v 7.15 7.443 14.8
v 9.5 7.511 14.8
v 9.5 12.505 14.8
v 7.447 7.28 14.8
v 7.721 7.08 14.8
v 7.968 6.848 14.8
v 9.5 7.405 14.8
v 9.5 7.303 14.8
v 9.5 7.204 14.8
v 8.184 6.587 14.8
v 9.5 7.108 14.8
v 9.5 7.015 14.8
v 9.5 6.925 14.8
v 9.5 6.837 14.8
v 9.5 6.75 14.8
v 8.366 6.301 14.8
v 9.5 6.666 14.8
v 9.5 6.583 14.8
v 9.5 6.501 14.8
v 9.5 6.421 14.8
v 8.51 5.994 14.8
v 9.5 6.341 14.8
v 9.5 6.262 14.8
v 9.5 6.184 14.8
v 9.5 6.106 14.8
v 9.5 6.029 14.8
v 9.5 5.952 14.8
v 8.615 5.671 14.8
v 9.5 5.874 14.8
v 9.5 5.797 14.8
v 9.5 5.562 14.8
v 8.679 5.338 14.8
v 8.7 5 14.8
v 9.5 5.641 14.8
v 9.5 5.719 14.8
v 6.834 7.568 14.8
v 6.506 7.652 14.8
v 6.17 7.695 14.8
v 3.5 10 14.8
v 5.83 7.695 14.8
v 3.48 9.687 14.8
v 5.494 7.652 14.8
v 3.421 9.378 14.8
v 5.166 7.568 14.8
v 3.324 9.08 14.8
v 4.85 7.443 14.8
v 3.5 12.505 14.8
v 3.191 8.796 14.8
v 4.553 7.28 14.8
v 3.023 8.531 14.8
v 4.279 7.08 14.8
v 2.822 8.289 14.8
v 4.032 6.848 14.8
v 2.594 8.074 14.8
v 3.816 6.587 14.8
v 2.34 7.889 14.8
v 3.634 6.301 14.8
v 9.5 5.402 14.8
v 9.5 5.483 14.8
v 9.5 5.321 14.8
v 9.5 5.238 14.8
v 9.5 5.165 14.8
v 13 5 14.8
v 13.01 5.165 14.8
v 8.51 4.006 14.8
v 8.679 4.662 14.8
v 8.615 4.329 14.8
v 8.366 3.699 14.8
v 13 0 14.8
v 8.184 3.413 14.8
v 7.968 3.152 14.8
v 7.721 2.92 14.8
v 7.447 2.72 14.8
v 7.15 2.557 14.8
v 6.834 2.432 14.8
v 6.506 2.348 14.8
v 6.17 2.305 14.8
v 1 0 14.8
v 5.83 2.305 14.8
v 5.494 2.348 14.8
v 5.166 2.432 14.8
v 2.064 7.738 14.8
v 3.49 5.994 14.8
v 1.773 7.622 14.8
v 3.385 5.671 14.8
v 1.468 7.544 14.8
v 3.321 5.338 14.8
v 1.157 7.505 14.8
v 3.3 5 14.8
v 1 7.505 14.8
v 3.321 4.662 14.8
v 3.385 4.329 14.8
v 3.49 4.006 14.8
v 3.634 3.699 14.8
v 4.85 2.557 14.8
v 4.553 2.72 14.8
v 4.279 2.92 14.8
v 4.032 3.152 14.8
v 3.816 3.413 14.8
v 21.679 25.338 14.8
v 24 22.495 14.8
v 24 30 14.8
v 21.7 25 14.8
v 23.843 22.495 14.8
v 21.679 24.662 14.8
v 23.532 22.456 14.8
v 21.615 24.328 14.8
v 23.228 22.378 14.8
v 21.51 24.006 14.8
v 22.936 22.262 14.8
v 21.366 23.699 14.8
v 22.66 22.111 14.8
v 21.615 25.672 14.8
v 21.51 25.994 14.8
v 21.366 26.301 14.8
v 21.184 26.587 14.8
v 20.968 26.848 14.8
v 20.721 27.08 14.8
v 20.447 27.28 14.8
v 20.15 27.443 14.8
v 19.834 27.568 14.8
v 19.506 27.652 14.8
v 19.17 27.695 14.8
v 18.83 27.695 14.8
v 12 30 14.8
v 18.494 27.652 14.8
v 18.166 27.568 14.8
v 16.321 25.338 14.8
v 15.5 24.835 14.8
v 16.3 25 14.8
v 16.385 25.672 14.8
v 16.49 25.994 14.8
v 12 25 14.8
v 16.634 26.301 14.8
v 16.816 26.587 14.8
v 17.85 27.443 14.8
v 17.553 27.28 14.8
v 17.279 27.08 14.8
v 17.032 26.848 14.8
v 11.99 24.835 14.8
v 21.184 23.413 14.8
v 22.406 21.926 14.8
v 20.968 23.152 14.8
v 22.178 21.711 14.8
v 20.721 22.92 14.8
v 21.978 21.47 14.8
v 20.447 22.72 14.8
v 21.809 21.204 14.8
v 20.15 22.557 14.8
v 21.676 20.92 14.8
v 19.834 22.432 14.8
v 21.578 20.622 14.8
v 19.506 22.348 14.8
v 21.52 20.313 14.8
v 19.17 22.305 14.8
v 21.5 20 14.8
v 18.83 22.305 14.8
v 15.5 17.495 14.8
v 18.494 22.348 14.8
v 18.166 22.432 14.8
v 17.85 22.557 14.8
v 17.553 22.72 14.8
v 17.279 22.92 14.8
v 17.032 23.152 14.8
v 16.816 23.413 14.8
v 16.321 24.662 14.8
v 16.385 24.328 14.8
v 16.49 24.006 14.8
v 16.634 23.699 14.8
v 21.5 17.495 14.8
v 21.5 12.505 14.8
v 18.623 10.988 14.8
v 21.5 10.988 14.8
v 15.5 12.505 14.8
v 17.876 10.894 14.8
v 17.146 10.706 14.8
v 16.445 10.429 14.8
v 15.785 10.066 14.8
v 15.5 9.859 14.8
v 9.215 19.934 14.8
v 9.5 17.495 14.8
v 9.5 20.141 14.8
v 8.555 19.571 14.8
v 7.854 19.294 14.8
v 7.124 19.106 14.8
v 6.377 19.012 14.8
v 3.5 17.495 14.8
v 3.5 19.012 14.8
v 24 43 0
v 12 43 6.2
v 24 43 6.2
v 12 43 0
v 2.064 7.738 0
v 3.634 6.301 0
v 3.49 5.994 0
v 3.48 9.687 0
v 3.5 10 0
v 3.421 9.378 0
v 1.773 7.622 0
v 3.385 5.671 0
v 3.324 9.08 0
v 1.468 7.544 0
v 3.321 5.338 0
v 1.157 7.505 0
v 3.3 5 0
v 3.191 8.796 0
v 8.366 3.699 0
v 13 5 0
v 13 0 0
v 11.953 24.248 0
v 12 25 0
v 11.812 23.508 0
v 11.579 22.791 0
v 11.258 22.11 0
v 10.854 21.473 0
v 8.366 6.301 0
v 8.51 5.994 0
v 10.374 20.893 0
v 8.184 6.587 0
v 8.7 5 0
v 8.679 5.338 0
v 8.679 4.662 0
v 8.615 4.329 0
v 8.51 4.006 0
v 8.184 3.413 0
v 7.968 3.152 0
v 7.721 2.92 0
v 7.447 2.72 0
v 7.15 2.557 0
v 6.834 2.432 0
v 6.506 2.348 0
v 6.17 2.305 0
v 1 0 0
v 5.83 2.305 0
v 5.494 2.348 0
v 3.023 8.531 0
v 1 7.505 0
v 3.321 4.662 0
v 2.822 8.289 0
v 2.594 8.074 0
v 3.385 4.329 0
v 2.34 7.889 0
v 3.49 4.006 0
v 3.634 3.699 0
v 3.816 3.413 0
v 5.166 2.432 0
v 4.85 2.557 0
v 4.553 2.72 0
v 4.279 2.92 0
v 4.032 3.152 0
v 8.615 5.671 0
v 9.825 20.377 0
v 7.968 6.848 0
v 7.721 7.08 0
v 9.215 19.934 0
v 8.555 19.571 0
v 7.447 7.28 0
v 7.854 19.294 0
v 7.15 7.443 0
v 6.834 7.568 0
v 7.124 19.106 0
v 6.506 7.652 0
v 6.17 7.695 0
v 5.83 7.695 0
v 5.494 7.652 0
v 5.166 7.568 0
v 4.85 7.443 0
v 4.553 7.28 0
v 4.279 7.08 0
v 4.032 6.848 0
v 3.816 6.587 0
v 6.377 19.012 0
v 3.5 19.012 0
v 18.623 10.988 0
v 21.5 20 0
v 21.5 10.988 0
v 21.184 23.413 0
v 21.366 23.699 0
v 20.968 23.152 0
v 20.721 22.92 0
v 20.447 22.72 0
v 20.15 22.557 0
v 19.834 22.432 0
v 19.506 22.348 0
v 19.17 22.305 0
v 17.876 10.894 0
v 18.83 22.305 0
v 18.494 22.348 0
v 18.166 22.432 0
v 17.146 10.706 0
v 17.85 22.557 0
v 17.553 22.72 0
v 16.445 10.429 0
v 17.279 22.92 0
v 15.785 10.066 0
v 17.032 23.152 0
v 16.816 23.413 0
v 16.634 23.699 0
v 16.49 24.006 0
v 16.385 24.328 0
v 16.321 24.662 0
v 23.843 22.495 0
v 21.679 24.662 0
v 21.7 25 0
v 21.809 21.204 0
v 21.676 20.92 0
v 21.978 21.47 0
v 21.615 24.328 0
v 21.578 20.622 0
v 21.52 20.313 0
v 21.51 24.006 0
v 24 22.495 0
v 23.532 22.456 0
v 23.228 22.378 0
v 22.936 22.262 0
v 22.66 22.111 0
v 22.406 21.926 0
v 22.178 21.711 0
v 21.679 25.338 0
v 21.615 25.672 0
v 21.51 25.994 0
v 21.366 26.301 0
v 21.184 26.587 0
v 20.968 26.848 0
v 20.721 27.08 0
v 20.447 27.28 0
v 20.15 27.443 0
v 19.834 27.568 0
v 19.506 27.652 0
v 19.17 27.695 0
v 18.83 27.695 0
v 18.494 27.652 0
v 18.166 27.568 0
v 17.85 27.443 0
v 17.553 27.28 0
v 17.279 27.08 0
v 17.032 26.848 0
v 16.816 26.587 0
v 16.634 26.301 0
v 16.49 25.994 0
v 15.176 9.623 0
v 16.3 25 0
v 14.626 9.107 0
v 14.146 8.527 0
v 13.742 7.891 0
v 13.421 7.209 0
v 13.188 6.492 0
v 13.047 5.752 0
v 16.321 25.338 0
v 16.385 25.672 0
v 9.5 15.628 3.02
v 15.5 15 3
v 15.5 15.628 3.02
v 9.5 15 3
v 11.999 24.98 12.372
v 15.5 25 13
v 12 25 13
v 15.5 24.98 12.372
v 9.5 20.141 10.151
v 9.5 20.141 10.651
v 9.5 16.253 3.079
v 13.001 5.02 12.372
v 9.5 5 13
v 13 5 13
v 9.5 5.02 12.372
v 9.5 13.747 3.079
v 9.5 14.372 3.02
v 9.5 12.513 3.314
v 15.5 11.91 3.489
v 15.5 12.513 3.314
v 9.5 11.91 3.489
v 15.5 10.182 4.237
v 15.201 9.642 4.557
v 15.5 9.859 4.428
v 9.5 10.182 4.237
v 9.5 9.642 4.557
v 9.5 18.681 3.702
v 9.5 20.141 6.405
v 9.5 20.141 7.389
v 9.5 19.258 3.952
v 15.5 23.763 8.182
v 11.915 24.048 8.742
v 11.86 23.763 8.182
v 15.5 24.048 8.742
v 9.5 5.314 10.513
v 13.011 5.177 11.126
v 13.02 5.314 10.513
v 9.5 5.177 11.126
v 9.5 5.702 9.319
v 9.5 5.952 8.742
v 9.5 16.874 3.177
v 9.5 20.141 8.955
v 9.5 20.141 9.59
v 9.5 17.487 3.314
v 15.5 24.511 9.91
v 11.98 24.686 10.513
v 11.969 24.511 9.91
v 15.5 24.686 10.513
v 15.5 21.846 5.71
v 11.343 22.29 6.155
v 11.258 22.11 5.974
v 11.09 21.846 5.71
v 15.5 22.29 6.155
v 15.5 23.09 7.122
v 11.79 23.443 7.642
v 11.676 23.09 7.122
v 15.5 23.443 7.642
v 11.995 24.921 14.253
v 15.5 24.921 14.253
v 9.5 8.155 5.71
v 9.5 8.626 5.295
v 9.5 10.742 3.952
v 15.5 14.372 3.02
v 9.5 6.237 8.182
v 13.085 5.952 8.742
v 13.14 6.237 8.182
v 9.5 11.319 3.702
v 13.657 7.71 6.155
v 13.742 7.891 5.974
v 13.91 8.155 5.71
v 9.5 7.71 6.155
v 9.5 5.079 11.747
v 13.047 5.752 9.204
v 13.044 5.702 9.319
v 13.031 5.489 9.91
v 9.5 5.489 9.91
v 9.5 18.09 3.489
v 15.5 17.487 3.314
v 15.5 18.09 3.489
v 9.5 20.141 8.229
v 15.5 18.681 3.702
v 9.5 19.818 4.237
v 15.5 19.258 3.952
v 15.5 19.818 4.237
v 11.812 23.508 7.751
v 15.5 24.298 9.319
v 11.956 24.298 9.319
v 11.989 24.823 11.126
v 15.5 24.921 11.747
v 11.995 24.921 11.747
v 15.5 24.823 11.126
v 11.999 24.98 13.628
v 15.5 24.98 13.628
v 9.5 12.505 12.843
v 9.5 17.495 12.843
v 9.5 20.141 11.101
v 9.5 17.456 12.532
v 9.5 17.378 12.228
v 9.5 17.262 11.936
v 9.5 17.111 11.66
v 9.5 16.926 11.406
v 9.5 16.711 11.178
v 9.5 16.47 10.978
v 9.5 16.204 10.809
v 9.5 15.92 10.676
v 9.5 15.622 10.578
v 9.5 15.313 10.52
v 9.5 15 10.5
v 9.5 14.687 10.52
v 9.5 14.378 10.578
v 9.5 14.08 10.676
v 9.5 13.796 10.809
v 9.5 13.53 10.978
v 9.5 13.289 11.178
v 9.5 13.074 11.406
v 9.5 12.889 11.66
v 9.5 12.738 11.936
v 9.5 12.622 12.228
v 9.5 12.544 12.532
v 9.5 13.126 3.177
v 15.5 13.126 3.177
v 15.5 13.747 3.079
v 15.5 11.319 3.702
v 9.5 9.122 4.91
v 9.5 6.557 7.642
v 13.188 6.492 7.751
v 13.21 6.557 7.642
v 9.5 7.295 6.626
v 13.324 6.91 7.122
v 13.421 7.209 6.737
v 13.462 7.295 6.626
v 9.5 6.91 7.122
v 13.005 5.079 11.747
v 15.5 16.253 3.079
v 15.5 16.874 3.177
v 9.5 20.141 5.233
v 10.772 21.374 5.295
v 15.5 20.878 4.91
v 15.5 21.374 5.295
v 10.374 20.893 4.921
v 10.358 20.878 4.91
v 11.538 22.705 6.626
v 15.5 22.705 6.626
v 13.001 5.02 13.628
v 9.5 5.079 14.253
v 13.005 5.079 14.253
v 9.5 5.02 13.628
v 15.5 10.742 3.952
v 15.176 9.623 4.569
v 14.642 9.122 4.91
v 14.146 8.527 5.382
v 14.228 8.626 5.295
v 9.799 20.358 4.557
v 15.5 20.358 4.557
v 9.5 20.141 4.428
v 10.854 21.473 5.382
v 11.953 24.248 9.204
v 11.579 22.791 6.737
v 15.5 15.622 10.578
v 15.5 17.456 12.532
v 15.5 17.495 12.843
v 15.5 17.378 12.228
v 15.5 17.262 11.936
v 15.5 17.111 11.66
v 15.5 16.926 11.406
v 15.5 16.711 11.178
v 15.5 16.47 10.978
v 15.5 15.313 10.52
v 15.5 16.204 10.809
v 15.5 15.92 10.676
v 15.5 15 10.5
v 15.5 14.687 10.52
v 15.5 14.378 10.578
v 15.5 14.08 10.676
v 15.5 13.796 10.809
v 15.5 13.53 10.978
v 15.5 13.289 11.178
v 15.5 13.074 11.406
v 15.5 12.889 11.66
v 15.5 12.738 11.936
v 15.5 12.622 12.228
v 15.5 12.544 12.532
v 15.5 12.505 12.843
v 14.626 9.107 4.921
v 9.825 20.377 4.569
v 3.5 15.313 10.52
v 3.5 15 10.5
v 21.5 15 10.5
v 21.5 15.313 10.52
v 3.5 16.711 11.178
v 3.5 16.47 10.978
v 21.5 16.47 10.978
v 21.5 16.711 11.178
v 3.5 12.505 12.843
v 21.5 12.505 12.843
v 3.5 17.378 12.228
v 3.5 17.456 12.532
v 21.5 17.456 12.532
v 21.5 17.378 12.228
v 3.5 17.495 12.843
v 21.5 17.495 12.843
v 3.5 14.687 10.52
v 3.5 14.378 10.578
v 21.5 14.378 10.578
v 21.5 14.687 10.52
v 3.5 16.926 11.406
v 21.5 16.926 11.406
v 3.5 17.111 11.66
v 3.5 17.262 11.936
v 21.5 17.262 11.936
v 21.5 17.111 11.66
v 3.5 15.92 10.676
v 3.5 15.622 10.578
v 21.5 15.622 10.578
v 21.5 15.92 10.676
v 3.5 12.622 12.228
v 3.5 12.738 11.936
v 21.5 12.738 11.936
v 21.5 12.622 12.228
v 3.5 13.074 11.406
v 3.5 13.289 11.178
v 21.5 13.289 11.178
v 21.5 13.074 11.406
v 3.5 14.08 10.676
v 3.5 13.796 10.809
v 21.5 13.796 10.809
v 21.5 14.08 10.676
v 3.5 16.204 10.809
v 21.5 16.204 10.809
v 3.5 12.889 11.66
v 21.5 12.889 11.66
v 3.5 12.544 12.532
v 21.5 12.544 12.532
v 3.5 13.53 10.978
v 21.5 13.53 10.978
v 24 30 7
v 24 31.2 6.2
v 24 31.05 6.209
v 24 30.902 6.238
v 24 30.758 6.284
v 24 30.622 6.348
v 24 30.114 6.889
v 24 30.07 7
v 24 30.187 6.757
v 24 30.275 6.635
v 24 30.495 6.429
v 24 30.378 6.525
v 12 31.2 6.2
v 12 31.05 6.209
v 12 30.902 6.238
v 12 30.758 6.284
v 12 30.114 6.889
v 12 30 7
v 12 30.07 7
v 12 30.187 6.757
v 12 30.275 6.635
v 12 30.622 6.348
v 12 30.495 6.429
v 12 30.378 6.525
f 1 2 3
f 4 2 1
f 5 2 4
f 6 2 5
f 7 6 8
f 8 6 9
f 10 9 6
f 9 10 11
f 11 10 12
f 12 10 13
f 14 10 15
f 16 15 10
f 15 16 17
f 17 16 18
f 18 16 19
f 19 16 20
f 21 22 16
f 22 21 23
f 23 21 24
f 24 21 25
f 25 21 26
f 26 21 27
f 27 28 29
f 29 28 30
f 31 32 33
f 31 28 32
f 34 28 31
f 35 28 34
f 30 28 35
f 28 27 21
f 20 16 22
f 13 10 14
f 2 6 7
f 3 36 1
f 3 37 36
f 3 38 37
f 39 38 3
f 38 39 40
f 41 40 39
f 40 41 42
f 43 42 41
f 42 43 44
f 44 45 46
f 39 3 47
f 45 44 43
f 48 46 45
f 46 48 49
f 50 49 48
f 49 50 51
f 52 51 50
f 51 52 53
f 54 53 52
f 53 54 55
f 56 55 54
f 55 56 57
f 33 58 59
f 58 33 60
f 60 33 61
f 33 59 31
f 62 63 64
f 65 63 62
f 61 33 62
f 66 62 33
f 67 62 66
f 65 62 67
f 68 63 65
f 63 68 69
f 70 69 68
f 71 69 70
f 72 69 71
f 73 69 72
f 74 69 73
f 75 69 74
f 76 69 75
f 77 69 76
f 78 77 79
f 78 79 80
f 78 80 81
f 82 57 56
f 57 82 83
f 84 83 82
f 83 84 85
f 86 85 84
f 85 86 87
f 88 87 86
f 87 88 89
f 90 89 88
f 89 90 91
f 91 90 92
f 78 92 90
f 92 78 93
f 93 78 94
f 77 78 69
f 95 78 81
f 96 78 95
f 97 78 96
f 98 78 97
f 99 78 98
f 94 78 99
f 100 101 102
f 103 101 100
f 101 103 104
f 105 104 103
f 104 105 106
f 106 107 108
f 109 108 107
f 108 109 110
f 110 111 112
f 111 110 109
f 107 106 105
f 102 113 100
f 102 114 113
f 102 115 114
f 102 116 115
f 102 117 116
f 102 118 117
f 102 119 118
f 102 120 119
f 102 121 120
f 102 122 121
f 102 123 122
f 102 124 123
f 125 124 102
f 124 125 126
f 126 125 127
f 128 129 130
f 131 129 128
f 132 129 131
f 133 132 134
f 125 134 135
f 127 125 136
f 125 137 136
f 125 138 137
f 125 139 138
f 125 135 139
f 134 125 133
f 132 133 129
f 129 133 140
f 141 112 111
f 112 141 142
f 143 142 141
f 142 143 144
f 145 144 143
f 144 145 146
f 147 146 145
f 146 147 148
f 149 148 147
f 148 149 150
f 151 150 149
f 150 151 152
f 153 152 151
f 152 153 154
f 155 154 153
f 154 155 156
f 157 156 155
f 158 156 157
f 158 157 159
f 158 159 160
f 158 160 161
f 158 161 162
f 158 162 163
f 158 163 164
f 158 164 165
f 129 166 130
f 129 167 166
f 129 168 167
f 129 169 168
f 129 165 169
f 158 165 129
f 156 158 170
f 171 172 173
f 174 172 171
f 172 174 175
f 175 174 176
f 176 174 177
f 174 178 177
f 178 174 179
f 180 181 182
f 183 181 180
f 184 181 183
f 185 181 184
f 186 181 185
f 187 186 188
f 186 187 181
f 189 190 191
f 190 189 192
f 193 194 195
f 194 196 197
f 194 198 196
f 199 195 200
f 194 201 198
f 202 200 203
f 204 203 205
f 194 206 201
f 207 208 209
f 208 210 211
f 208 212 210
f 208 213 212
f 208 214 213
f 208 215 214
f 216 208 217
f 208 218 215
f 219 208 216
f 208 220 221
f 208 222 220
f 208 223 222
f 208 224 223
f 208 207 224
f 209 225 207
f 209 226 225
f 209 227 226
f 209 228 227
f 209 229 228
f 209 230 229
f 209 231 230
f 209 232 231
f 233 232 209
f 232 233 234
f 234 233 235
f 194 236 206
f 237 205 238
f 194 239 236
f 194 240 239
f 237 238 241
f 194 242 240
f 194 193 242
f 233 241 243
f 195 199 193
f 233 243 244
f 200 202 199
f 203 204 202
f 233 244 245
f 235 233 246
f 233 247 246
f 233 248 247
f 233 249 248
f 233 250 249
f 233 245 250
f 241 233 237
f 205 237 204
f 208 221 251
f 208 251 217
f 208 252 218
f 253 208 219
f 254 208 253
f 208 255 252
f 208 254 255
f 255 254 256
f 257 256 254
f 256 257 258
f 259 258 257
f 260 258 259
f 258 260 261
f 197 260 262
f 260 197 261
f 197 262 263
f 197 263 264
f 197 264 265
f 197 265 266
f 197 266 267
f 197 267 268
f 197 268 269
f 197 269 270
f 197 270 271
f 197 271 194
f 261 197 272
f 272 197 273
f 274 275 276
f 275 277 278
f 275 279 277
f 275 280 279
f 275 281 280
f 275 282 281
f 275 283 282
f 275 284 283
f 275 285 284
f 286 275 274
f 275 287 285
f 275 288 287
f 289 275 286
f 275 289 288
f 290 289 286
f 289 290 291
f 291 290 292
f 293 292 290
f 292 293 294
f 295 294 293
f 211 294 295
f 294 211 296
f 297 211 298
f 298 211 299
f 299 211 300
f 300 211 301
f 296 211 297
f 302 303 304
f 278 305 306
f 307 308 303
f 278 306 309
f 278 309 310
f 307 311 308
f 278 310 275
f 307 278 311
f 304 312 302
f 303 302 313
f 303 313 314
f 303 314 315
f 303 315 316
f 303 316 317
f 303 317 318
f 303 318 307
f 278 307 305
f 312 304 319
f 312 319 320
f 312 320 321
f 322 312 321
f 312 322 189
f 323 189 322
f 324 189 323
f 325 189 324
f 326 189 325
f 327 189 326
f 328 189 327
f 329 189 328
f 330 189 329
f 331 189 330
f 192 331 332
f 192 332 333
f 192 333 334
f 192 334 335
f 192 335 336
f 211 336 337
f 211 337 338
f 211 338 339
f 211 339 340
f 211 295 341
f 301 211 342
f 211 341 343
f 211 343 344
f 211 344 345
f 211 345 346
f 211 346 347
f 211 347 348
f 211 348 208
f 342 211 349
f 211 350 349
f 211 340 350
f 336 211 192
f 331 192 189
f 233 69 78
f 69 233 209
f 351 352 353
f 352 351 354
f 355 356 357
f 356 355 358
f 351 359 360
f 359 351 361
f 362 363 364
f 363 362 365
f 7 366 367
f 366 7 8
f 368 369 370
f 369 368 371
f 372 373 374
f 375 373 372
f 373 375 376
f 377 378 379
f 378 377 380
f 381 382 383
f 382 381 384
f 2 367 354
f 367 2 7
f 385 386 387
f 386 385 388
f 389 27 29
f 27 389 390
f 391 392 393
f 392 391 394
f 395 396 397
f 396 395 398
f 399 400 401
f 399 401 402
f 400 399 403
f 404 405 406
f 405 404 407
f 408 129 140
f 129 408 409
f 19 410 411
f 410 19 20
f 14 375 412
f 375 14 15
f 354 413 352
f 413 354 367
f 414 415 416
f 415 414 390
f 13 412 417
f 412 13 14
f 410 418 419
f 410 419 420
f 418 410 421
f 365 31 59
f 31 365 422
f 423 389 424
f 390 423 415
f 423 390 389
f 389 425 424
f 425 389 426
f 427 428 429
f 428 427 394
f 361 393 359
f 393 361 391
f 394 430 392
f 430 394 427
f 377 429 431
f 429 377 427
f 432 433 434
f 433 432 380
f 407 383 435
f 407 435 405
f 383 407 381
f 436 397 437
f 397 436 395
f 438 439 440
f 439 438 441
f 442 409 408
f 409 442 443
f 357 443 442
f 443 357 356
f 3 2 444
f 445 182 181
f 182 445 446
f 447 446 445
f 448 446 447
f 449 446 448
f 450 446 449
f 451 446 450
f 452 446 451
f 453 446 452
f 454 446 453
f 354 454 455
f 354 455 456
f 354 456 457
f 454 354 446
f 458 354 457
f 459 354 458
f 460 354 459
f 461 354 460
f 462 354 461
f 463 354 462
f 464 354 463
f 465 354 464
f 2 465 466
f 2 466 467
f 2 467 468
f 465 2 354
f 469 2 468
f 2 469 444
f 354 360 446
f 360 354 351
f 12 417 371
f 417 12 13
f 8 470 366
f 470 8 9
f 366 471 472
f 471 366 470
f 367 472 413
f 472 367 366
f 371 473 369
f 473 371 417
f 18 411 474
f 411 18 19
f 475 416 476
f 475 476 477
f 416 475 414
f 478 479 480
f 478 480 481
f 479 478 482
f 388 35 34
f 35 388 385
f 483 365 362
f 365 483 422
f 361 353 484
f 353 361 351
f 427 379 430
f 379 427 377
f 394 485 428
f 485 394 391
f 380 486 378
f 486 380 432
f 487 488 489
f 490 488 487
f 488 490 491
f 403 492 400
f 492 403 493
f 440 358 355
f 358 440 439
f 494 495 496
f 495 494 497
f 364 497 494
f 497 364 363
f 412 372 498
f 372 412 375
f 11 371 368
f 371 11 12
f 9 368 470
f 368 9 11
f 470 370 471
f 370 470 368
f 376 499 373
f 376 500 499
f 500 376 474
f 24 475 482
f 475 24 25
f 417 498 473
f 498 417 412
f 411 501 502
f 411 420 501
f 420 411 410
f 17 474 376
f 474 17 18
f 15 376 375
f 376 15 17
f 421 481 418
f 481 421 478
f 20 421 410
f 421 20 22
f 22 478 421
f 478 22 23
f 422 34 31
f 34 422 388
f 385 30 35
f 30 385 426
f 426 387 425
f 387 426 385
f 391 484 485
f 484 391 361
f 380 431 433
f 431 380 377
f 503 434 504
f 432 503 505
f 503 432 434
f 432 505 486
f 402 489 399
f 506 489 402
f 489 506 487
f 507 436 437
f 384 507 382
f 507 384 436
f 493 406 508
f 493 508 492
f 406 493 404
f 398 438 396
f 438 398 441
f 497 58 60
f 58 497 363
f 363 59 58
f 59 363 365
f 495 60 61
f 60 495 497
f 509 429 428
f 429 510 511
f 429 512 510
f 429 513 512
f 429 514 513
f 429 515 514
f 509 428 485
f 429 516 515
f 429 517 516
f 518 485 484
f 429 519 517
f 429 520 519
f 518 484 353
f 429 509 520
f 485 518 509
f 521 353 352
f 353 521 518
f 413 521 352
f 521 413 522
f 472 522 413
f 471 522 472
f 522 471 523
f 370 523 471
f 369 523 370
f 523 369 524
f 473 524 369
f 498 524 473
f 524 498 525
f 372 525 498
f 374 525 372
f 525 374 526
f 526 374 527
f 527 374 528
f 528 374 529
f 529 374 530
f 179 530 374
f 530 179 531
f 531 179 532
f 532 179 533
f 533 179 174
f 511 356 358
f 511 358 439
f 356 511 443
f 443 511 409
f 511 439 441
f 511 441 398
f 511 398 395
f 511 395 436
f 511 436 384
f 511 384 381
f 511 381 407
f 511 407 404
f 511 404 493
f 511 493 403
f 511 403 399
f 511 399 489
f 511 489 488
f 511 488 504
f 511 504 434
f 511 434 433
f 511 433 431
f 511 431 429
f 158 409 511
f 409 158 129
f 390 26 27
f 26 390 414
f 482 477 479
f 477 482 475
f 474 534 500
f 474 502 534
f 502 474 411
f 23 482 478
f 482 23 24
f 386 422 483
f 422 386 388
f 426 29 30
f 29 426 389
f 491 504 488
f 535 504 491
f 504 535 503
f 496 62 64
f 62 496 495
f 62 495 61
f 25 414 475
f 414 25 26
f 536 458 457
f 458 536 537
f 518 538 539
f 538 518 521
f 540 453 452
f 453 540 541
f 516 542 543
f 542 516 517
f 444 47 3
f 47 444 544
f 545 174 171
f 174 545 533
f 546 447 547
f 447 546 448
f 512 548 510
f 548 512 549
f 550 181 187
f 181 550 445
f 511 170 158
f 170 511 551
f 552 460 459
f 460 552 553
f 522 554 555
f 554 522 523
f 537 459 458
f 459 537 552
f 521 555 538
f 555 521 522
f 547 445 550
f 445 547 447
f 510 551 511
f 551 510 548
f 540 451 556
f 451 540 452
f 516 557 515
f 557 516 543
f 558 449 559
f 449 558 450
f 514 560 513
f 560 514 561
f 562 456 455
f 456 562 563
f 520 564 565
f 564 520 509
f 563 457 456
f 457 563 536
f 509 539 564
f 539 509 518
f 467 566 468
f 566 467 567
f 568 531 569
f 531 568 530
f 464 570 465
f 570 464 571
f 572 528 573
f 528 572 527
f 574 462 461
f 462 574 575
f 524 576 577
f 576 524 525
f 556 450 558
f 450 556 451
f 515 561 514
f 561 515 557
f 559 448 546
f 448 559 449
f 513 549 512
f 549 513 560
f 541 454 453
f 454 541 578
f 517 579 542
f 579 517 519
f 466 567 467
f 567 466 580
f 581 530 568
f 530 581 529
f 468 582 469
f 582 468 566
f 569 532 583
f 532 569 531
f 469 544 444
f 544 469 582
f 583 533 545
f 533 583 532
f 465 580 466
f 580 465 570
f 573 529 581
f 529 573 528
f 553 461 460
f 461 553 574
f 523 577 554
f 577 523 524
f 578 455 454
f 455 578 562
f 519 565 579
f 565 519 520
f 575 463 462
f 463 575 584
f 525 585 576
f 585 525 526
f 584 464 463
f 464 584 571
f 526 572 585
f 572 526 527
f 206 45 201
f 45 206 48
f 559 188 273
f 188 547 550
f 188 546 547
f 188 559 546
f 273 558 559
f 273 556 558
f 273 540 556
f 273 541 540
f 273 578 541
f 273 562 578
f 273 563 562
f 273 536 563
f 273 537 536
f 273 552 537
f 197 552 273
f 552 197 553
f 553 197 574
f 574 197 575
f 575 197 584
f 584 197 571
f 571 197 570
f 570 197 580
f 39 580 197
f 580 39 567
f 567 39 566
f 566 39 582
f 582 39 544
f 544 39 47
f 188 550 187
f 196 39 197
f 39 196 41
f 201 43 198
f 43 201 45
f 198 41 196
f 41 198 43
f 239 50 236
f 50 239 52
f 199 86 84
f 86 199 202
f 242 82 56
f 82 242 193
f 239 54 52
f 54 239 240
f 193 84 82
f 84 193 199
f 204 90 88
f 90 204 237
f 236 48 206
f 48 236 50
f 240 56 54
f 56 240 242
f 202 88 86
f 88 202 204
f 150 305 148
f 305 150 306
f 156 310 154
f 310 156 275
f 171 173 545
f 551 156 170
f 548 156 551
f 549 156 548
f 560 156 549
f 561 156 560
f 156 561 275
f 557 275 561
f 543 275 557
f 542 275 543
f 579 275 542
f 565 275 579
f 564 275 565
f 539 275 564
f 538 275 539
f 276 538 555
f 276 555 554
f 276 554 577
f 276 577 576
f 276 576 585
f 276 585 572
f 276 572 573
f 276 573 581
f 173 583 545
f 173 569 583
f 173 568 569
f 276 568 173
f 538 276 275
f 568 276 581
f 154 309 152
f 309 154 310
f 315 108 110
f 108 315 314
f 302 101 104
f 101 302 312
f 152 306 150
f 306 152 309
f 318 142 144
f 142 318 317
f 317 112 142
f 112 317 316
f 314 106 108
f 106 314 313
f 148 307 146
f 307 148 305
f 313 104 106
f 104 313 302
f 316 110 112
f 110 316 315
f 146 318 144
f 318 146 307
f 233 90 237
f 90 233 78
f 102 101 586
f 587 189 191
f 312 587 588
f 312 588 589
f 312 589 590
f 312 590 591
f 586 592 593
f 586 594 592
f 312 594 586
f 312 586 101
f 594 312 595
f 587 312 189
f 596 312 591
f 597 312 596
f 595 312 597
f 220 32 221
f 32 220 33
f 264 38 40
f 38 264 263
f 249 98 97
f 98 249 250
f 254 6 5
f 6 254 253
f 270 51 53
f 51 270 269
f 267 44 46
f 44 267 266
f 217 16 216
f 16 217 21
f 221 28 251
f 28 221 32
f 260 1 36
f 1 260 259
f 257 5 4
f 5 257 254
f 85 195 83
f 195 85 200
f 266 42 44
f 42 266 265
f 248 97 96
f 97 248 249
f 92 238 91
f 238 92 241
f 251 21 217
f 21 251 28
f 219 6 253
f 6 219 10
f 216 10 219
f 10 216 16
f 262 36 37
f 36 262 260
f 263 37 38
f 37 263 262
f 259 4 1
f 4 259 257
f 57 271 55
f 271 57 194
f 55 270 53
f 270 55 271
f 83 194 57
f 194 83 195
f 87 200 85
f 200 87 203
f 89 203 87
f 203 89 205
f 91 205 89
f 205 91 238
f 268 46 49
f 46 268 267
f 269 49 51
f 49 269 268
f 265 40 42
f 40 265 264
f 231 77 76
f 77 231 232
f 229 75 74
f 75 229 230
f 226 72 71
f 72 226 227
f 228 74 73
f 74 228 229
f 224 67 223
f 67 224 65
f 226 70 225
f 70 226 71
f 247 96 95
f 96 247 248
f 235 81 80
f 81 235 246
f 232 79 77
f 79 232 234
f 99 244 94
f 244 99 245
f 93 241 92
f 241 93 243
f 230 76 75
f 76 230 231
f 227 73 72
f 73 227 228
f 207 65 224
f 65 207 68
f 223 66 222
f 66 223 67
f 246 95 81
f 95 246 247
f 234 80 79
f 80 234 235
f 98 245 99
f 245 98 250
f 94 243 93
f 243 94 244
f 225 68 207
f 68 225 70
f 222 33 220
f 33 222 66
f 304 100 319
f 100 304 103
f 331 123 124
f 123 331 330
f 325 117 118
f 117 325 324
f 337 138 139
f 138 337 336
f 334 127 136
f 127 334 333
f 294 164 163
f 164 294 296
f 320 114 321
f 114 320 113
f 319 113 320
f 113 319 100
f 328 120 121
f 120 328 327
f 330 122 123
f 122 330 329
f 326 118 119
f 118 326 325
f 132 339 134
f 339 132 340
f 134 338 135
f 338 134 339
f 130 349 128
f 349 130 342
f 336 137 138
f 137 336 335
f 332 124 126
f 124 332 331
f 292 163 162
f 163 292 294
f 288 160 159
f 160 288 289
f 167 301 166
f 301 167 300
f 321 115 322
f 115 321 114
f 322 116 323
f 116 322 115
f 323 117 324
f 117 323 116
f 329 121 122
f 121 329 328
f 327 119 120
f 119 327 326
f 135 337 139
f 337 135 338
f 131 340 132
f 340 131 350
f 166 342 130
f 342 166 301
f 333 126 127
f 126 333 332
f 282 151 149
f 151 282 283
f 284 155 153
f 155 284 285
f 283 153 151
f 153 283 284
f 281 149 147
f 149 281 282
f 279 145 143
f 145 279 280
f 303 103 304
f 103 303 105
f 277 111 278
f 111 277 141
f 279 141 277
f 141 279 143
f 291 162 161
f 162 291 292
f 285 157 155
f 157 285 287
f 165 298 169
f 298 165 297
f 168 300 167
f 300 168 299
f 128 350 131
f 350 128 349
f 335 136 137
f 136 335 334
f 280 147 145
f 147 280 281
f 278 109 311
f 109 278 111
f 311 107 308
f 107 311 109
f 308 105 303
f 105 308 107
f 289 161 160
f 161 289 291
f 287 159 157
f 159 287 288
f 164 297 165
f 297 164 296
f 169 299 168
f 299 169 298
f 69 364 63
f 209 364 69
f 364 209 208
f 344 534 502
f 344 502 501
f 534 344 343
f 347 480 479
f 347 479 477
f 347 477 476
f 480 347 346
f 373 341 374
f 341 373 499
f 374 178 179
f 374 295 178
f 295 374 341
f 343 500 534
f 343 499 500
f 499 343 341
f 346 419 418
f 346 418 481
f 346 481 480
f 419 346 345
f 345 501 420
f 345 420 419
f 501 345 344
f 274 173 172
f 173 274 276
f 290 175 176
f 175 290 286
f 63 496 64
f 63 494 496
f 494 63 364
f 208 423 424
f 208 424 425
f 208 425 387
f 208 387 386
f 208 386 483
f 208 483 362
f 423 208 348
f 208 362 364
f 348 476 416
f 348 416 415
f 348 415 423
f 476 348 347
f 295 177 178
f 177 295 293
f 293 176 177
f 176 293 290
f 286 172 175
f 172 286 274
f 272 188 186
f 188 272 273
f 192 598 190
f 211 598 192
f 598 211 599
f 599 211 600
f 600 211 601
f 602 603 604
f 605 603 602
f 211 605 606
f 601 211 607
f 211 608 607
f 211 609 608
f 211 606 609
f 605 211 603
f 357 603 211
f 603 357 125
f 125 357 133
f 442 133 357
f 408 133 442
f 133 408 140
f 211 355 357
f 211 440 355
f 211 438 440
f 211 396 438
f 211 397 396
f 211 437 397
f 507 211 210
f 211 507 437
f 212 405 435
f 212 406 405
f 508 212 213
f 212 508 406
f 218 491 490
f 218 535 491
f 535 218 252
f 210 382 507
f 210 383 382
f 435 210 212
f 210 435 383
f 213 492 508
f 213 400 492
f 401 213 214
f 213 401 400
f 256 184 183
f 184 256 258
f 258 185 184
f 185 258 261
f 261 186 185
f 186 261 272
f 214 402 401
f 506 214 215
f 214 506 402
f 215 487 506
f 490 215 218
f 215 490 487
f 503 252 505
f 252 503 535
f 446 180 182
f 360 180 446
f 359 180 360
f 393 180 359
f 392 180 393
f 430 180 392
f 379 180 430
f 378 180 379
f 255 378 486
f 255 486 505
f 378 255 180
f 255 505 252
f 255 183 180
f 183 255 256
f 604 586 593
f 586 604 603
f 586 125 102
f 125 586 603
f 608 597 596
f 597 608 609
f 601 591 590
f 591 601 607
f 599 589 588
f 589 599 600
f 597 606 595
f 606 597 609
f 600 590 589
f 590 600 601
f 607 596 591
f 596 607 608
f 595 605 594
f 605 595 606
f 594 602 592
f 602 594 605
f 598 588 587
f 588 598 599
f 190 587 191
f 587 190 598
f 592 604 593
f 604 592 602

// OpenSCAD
largeur=70;
ep=25;
hauteur=60;
r_filament=1.2;
r_m3=2;
ecrou_m3=3.2;
ecart_pignon=4+1.1;
ecart_605=7+1.5;

long_605=30;
ep_605=10;
r_m5=2.9;
r_ecrou_m5=4.6;
r_tube=3.1;

surep=3; //surépaisseur pour les supports 605 par rapport à la version initiale, pour les rendre plus solides
epde=23; //ajout en hauteur pour le bloc extrudeur afin de pouvoir sur monter sur les chariots inversés sur les Tobeca sur mesure

module double_extrudeur(){
	difference(){
	union(){
		cube([largeur,hauteur,ep]);
		translate([0,-epde,0]){cube([largeur,epde,ep]);}
        translate([ep/2-2,-epde,ep/2]){rotate([-90,0,0])cylinder(r=ep/2, h=epde+10, $fn=100);}
        translate([largeur-ep/2+2,-epde,ep/2]){rotate([-90,0,0])cylinder(r=ep/2, h=epde+10, $fn=100);}
	}

		//trous généraux pour passage filament
		translate([18,-50,ep/2]){rotate([-90,0,0])cylinder(r=r_filament, h=150, $fn=50);}
		translate([52,-50,ep/2]){rotate([-90,0,0])cylinder(r=r_filament, h=150, $fn=50);}
        
        //trou pour verrouillage chariot au transport avec insert M3
        translate([18+17,-50,ep/2]){rotate([-90,0,0])cylinder(r=1.7, h=150, $fn=50);}
        translate([18+17,-50,ep/2]){rotate([-90,0,0])cylinder(r=3.3, h=75, $fn=6);}
		

		//lamage pour supporter les tubes en teflon
		translate([18,hauteur+5,ep/2]){rotate([90,0,0])cylinder(r=r_tube, h=10, $fn=50);}
		translate([52,hauteur+5,ep/2]){rotate([90,0,0])cylinder(r=r_tube, h=10, $fn=50);}
		translate([18,hauteur-4.99,ep/2]){rotate([90,0,0])cylinder(r1=r_tube, r2=r_filament, h=4, $fn=100);}
		translate([52,hauteur-4.99,ep/2]){rotate([90,0,0])cylinder(r1=r_tube, r2=r_filament,h=4, $fn=100);}

		//trous de fixation sur plaque alu
		translate([5,-50,ep/2]){rotate([-90,0,0])cylinder(r=r_m3, h=100, $fn=50);}
		translate([largeur-5,-50,ep/2]){rotate([-90,0,0])cylinder(r=r_m3, h=100, $fn=50);}
        translate([5,7,ep/2]){rotate([-90,0,0])cylinder(r=3.5, h=10, $fn=50);}
		translate([largeur-5,7,ep/2]){rotate([-90,0,0])cylinder(r=3.5, h=10, $fn=50);}
		translate([5,-25,ep/2]){rotate([-90,30,0])cylinder(r=ecrou_m3, h=5, $fn=6);}
		translate([largeur-5,-25,ep/2]){rotate([-90,30,0])cylinder(r=ecrou_m3, h=5, $fn=6);}

		//trous pour fixation des moteurs gauche
		translate([17.7+ecart_pignon,10,-5]){cylinder(r=r_m3, h=ep+10, $fn=50);}
		translate([17.7+ecart_pignon,10+44.55,-5]){cylinder(r=r_m3, h=ep+10, $fn=50);}

		translate([17.7+ecart_pignon,10,ep-9]){cylinder(r=4, h=10, $fn=50);}
		translate([17.7+ecart_pignon,10+44.55,ep-9]){cylinder(r=4, h=10, $fn=50);}

		//trous pour fixation des moteurs droite
		translate([52.3-ecart_pignon,10,-5]){cylinder(r=r_m3, h=ep+10, $fn=50);}
		translate([52.3-ecart_pignon,10+44.55,-5]){cylinder(r=r_m3, h=ep+10, $fn=50);}

		translate([52.3-ecart_pignon,10,-0.1]){cylinder(r=4, h=9, $fn=50);}
		translate([52.3-ecart_pignon,10+44.55,-0.1]){cylinder(r=4, h=9, $fn=50);}

		//extrusions pour encastrement bloc moteur et pignon gauche
		translate([52.3-ecart_pignon,10+44.55/2,-5]){cylinder(r=5, h=ep+10, $fn=100);}
		translate([52.3-ecart_pignon,10+44.55/2,ep-3]){cylinder(r=11.2, h=ep, $fn=100);}
		translate([52.3-ecart_pignon,10+44.55/2,ep-10]){cylinder(r=7, h=ep, $fn=100);}

		//extrusions pour encastrement bloc moteur et pignon droite
		translate([17.7+ecart_pignon,10+44.55/2,-5]){cylinder(r=5, h=ep+10, $fn=100);}
		translate([17.7+ecart_pignon,10+44.55/2,-0.01]){cylinder(r=7, h=9, $fn=100);}
		translate([17.7+ecart_pignon,10+44.55/2,8.98]){cylinder(r1=7, r2=5, h=1, $fn=100);}
		translate([17.7+ecart_pignon,10+44.55/2,-0.01]){cylinder(r=11.2, h=3, $fn=100);}
		translate([17.7+ecart_pignon,10+44.55/2,2.98]){cylinder(r1=11.2, r2=7, h=2, $fn=100);}
		
		
		//trous pour roulements 605ZZ
		hull(){
			translate([17.7-ecart_605,10+44.55/2,-5]){cylinder(r=7.5, h=ep+10, $fn=100);}
			translate([17.7-ecart_605+10,10+44.55/2,-5]){cylinder(r=5, h=ep+10, $fn=100);}
		}

		hull(){
			translate([52.3+ecart_605,10+44.55/2,-5]){cylinder(r=7.5, h=ep+10, $fn=100);}
			translate([52.3+ecart_605-10,10+44.55/2,-5]){cylinder(r=5, h=ep+10, $fn=100);}
		}
		
		

		//extrusions pour libérer les roulements
		translate([-5,10,-5]){cube([17.7-ecart_605+5,hauteur,ep+10]);}
		translate([52.3+ecart_605,10,-5]){cube([17.7-ecart_605+5,hauteur,ep+10]);}

		//extrusion haute pour alléger la pièce
		hull(){
			translate([largeur/2,hauteur/2+20,-5]){cylinder(r=4, h=ep+10, $fn=100);}
			translate([largeur/2,hauteur+20,-5]){cylinder(r=10, h=ep+10, $fn=100);}
		}


		//extrusions pour bloquer les têtes

		translate([18,-epde-5,ep/2]){rotate([-90,0,0])cylinder(r=8.5, h=9, $fn=100);}
	
		translate([52,-epde-5,ep/2]){rotate([-90,0,0])cylinder(r=8.5, h=9, $fn=100);}

		//trous traversants pour serrer les ressorts
		translate([-5,10+44.55/2-15+5,6]){rotate([0,90,0])cylinder(r=r_m5, h=100, $fn=50);}
		
		

		translate([-5,10+44.55/2-15+5,ep-6]){rotate([0,90,0])cylinder(r=r_m5, h=100, $fn=50);}
	
		translate([-5,10+44.55/2-15+long_605-5,6]){rotate([0,90,0])cylinder(r=r_m5, h=100, $fn=50);}
		
		translate([-5,10+44.55/2-15+long_605-5,ep-6]){rotate([0,90,0])cylinder(r=r_m5, h=100, $fn=50);}

		//extrusions pour alléger les côtés de la pièce
		hull(){
			translate([10,15,-5]){cylinder(r=5, h=ep+10, $fn=50);}
			translate([10,hauteur-10,-5]){cylinder(r=5, h=ep+10, $fn=50);}
		}

		hull(){
			translate([largeur-10,15,-5]){cylinder(r=5, h=ep+10, $fn=50);}
			translate([largeur-10,hauteur-10,-5]){cylinder(r=5, h=ep+10, $fn=50);}
		}

		//rainures pour le passage de la courroie
		hull(){
		translate([-5,-epde+14,ep-2]){rotate([0,90,0])cylinder(r=7, h=100, $fn=50);}
		translate([-5,-epde+14,ep+7]){rotate([0,90,0])cylinder(r=12, h=100, $fn=50);}
		}

		hull(){
		translate([-5,-epde+14,-7]){rotate([0,90,0])cylinder(r=12, h=largeur/2-1.5, $fn=50);}
		translate([-5,-epde+14,2]){rotate([0,90,0])cylinder(r=7, h=largeur/2-1.5, $fn=50);}
		}

		hull(){
		translate([largeur/2+6.5,-epde+14,-7]){rotate([0,90,0])cylinder(r=12, h=100, $fn=50);}
		translate([largeur/2+6.5,-epde+14,2]){rotate([0,90,0])cylinder(r=7, h=100, $fn=50);}
		}

		//passage de vis pour tenir la courroie
		translate([largeur/2-13,-epde+14,-5]){cylinder(r=r_m3, h=100, $fn=50);}
		translate([largeur/2+13,-epde+14,-5]){cylinder(r=r_m3, h=100, $fn=50);}
		translate([largeur/2-13,-epde+14,0]){cylinder(r=ecrou_m3, h=13, $fn=6);}
		translate([largeur/2+13,-epde+14,0]){cylinder(r=ecrou_m3, h=13, $fn=6);}
	}
}

module support_605(){
	difference(){
		cube([ep,long_605+13,ep_605+1.8+surep]);

		//extrusion pour passage roulement
		//translate([ep/2-3,-8,-5]){cube([6,16,10+10]);}
		translate([ep/2-3,long_605/2,ep_605+surep]){rotate([0,90,0])cylinder(r=10, h=6, $fn=100);}

		//passage d'axe
		hull(){
			translate([-5,15,ep_605+surep]){rotate([0,90,0])cylinder(r=2.5, h=ep+10, $fn=50);}
			translate([-5,15,ep_605+5+surep]){rotate([0,90,0])cylinder(r=2.5, h=ep+10, $fn=50);}
		}
        
        //exrusion pour passage colerette moteur
        hull(){
            translate([1,20,-5]){cylinder(r=2.5, h=ep+10, $fn=50);}
            translate([1,10,-5]){cylinder(r=2.5, h=ep+10, $fn=50);}
        }
        
        hull(){
            translate([ep-1,20,-5]){cylinder(r=2.5, h=ep+10, $fn=50);}
            translate([ep-1,10,-5]){cylinder(r=2.5, h=ep+10, $fn=50);}
        }
		

		//extrusion pour libérer un peu le bloc

		//extrusion pour enlever un peu de largeur à la partie montante
		translate([-0.1,0,ep_605-3+surep]){cube([1.1,30,5]);}
		translate([ep-1,0,ep_605-3+surep]){cube([10,30,5]);}

		//trous pour serrage
		translate([6,5,-5]){cylinder(r=2.7, h=ep+10, $fn=50);}
		translate([ep-6,long_605-5,-5]){cylinder(r=2.7, h=ep+10, $fn=50);}

		//trous libres pour support_605g
		hull(){
			translate([ep-6,5,-5]){cylinder(r=6, h=ep+10, $fn=50);}
			translate([ep-6+5,5,-5]){cylinder(r=6, h=ep+10, $fn=50);}
			translate([ep-6,0,-5]){cylinder(r=6, h=ep+10, $fn=50);}
		}

		hull(){
			translate([6,long_605-5,-5]){cylinder(r=6, h=ep+10, $fn=50);}
			translate([6-5,long_605-5,-5]){cylinder(r=6, h=ep+10, $fn=50);}
			translate([6,long_605,-5]){cylinder(r=6, h=ep+10, $fn=50);}
		}

		

		//rognage sur les bords pour ne pas frotter sur les blocs moteurs
		translate([-1,-5,-5]){cube([2,long_605+10,ep_605+10]);}
		translate([ep-1,-5,-5]){cube([2,long_605+10,ep_605+10]);}


      //modif pour ergot
        translate([-1,30,-1]){cube([13,40,ep_605+10]);}
        translate([-1,30,7]){cube([45,40,ep_605+10]);}
        translate([ep-1,30,-1]){cube([27,40,ep_605+10]);}

	hull(){
			translate([-5,31.2,7.4]){rotate([0,90,0])cylinder(r=1.2, h=ep+10, $fn=50);}
			translate([-5,45,7.4]){rotate([0,90,0])cylinder(r=1.2, h=ep+10, $fn=50);}}
    

	}
    
 

}

//double_extrudeur();
//translate([-surep,10+44.55/2-15,ep]){rotate([0,90,0])support_605();}
//translate([largeur+surep,10+44.55/2-15,0]){rotate([0,-90,0])support_605();}

//translate([100,0,0]){support_605();}
support_605();
